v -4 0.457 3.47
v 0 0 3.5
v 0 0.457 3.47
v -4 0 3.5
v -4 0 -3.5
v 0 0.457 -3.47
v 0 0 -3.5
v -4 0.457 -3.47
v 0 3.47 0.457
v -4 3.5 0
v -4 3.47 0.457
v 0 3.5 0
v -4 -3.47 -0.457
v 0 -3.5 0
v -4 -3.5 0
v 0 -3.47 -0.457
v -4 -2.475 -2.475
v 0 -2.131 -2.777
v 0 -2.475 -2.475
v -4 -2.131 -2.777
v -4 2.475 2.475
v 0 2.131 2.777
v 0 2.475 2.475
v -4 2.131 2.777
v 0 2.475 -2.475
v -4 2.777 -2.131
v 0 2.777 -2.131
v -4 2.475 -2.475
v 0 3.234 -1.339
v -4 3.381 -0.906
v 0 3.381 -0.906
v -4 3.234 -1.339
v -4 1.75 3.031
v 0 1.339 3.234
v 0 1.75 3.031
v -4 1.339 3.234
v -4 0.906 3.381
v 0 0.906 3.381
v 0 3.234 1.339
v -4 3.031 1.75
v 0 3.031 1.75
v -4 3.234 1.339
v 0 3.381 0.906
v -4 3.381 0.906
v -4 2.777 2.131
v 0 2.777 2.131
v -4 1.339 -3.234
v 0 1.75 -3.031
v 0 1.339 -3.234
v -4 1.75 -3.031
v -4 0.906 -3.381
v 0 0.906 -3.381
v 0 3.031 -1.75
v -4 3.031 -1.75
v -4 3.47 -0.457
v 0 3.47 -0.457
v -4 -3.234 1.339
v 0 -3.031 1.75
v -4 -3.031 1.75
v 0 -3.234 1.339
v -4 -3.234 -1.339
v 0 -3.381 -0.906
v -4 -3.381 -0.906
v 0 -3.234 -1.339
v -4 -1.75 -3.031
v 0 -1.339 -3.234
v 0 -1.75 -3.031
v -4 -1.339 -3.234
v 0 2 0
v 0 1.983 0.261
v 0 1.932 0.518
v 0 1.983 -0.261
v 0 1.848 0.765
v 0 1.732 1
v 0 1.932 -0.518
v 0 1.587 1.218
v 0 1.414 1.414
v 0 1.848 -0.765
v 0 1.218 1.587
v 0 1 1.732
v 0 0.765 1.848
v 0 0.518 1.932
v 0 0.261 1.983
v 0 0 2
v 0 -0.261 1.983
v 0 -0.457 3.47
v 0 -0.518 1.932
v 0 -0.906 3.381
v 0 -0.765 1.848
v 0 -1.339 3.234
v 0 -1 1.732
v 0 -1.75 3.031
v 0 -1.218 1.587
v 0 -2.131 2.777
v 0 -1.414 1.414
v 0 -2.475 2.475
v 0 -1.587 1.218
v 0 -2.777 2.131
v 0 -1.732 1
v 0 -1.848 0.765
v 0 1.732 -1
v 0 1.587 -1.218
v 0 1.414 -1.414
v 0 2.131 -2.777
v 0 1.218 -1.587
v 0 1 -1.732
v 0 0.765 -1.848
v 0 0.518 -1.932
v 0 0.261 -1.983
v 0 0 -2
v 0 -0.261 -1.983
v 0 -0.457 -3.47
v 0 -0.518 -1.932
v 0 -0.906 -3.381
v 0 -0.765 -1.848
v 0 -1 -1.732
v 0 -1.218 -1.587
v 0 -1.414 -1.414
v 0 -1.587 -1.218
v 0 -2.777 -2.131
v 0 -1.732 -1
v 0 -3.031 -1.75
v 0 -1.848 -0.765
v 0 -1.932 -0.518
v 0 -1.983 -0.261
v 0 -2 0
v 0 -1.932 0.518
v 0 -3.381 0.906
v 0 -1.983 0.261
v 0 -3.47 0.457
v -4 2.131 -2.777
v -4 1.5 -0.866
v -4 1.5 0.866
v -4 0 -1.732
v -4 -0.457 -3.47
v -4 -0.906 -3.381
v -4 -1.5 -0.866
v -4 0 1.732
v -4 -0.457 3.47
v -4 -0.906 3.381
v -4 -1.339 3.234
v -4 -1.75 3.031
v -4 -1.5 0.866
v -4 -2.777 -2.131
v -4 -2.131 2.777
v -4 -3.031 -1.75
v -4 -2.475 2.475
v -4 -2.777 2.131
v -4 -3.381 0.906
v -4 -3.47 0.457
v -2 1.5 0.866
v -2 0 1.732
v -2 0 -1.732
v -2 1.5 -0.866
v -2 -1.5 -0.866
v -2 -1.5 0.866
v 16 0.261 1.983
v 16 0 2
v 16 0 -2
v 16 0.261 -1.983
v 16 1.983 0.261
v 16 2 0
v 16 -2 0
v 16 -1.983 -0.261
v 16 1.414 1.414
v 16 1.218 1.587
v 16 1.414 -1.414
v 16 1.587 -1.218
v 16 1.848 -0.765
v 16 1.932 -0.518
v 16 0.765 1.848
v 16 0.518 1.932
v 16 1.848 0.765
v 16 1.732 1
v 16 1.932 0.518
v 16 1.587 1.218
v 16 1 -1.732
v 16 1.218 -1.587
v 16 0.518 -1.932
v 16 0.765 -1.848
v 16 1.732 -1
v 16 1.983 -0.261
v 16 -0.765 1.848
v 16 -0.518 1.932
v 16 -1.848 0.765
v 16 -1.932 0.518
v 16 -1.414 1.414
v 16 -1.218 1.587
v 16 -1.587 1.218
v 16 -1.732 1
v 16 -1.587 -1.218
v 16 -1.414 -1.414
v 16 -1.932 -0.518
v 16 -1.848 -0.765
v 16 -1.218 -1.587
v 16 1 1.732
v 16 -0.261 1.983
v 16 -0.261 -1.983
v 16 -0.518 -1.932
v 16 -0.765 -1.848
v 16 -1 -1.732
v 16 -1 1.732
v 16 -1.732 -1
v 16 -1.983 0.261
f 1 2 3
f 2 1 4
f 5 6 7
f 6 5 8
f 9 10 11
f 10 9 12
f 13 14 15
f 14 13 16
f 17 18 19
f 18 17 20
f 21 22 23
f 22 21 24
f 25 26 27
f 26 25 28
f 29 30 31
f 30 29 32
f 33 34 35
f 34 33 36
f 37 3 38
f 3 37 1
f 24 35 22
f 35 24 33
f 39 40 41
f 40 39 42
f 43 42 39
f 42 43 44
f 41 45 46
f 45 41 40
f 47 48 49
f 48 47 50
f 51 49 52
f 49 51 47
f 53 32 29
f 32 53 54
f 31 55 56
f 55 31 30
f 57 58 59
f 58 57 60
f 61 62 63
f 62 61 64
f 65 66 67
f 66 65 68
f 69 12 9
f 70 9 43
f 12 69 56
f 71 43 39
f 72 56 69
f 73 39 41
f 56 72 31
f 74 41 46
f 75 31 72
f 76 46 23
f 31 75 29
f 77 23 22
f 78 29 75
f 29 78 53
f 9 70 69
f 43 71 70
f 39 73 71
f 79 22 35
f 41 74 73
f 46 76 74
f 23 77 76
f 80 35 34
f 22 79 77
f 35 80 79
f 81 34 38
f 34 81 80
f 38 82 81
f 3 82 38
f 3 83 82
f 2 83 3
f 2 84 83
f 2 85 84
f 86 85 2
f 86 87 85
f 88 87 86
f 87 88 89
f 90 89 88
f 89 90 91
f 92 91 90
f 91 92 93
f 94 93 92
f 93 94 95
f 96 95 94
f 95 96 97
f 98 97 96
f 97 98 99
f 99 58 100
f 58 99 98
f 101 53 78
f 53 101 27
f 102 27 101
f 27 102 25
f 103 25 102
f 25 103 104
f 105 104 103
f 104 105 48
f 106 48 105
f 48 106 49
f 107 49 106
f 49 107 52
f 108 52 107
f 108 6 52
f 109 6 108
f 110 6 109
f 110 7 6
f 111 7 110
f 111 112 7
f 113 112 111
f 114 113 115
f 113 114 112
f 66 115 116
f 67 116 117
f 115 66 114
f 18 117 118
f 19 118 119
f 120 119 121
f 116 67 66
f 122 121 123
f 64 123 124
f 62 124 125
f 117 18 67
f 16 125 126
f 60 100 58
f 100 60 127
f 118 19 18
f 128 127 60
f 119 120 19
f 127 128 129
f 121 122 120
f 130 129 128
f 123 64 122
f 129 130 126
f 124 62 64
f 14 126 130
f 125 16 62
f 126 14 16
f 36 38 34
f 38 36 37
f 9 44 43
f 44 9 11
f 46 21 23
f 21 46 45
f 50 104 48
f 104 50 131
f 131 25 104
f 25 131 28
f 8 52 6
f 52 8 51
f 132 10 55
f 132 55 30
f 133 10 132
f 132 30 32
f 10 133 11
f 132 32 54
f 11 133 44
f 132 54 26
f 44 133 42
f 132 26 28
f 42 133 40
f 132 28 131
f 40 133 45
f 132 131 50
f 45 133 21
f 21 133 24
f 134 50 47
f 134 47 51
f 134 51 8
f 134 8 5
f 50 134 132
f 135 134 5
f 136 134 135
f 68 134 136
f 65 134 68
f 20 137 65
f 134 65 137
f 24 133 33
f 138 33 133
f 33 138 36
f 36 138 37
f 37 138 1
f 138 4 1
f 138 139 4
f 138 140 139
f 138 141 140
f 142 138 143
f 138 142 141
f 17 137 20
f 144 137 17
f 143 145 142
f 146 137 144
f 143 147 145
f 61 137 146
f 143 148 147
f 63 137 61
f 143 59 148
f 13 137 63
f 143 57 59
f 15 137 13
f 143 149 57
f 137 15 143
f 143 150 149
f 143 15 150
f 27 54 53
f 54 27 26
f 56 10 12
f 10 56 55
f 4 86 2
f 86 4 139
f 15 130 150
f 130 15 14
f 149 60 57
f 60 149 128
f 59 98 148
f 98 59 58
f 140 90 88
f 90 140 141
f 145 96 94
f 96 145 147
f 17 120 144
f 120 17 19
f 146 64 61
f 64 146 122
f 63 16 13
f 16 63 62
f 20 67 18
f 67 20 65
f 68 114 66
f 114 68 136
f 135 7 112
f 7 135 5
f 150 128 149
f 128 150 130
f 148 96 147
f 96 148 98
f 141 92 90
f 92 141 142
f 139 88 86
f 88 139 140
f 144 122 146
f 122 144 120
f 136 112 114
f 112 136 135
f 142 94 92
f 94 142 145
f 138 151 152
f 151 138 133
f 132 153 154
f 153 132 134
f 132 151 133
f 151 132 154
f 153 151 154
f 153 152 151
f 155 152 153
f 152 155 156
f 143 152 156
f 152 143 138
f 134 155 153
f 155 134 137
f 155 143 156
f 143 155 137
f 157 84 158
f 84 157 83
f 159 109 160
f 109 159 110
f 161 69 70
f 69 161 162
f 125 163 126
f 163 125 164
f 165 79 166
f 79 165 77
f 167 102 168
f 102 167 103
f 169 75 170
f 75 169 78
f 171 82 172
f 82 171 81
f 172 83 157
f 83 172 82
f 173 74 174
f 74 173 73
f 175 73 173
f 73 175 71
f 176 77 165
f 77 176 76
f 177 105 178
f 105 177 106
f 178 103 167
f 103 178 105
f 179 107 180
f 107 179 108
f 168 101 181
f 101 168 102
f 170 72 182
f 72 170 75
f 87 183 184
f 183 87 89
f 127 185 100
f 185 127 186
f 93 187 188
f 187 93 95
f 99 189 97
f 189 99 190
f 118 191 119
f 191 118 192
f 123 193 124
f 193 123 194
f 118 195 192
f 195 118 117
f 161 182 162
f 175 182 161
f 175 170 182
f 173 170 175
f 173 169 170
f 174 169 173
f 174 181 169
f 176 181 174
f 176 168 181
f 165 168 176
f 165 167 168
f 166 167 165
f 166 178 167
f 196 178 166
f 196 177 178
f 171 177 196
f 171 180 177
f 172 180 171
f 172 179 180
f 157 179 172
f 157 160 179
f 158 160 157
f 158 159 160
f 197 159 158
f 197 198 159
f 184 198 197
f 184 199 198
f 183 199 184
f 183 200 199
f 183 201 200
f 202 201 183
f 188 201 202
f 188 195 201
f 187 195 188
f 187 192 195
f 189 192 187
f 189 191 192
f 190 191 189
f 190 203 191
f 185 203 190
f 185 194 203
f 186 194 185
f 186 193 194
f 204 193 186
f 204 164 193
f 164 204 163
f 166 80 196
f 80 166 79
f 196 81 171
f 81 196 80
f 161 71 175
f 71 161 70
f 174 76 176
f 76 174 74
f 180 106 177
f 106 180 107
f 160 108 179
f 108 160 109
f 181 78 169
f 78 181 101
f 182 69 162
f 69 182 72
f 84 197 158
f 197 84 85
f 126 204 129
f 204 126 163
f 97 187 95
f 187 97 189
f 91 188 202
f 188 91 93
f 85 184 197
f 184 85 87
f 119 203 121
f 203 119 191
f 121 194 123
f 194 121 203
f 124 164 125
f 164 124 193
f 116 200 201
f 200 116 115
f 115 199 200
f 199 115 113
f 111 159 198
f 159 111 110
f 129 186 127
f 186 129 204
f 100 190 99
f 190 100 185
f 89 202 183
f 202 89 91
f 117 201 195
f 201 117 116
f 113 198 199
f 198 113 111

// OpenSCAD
// file: ../../../lib/nutsnbolts/data-access.scad
// Norm Nuts and Bolts - a OpenSCAD library
// Copyright (C) 2012  Johannes Kneer

// This program is free software: you can redistribute it and/or modify
// it under the terms of the GNU General Public License as published by
// the Free Software Foundation, either version 3 of the License, or
// (at your option) any later version.

// This program is distributed in the hope that it will be useful,
// but WITHOUT ANY WARRANTY; without even the implied warranty of
// MERCHANTABILITY or FITNESS FOR A PARTICULAR PURPOSE.  See the
// GNU General Public License for more details.

// You should have received a copy of the GNU General Public License
// along with this program.  If not, see <http://www.gnu.org/licenses/>.


// DATABASE ACCESS FUNCTIONS AND CONSTANTS



// == CONSTANTS ==

// screw table access keys
_NB_S_DESC            = 0;
_NB_S_FAMKEY			    = 1;
_NB_S_LENGTH          = 2;
_NB_S_NOTHREAD_LENGTH = 3;

_NB_F_DESC			      = 0;
_NB_F_OUTER_DIA       = 1;
_NB_F_INNER_DIA       = 2;
_NB_F_LEAD            = 3;
_NB_F_KEY             = 4;
_NB_F_KEY_DEPTH       = 5;
_NB_F_HEAD_HEIGHT     = 6;
_NB_F_HEAD_DIA        = 7;
_NB_F_NUT_KEY         = 8;
_NB_F_NUT_HEIGHT      = 9;
_NB_F_PITCH_FINE      = 10;
_NB_F_PITCH_MEDIUM    = 11;
_NB_F_PITCH_COARSE    = 12;


// == FUNCTIONS ==

// _get_screw("descriptor")   with descriptor = M8x25
//   find the line for a general object in the data matrix

function _get_screw(n) = data_screw[search([n], data_screw)[0]];
function _get_screw_fam(n) = data_screw_fam[search([_get_screw(n)[_NB_S_FAMKEY]], data_screw_fam)[0]];

function _get_fam(n) = data_screw_fam[search([n], data_screw_fam)[0]];


// _get_XXXXX("descriptor") functions
// find a single property in the database

function _get_desc(n)        = _get_screw(n)[_NB_S_DESC];
function _get_famkey(n)         = _get_screw(n)[_NB_S_FAMKEY];
function _get_length(n)      = _get_screw(n)[_NB_S_LENGTH];
function _get_nt_length(n)   = _get_screw(n)[_NB_S_NOTHREAD_LENGTH];

function _get_outer_dia(n)   = _get_screw_fam(n)[_NB_F_OUTER_DIA];
function _get_inner_dia(n)   = _get_screw_fam(n)[_NB_F_INNER_DIA];
function _get_lead(n)        = _get_screw_fam(n)[_NB_F_LEAD];
function _get_head_height(n) = _get_screw_fam(n)[_NB_F_HEAD_HEIGHT];
function _get_head_dia(n)    = _get_screw_fam(n)[_NB_F_HEAD_DIA];
function _get_nut_key(n)     = _get_screw_fam(n)[_NB_F_NUT_KEY];
function _get_nut_height(n)  = _get_screw_fam(n)[_NB_F_NUT_HEIGHT];
function _get_fine_pitch(n)  = _get_screw_fam(n)[_NB_F_PITCH_FINE];
function _get_medium_pitch(n)  = _get_screw_fam(n)[_NB_F_PITCH_MEDIUM];
function _get_coarse_pitch(n)  = _get_screw_fam(n)[_NB_F_PITCH_COARSE];
// main file
/**********************************************************************************************************************
 **
 ** parts/vitamins/screw_M4x16.scad
 **
 ** This file renders a screw of the dimensions specified by the file name.
 **
 **********************************************************************************************************************/

include <../../../lib/nutsnbolts/cyl_head_bolt.scad>;

$fn = 48;
rotate([0, -90, 0])
	screw("M4x16"); 
